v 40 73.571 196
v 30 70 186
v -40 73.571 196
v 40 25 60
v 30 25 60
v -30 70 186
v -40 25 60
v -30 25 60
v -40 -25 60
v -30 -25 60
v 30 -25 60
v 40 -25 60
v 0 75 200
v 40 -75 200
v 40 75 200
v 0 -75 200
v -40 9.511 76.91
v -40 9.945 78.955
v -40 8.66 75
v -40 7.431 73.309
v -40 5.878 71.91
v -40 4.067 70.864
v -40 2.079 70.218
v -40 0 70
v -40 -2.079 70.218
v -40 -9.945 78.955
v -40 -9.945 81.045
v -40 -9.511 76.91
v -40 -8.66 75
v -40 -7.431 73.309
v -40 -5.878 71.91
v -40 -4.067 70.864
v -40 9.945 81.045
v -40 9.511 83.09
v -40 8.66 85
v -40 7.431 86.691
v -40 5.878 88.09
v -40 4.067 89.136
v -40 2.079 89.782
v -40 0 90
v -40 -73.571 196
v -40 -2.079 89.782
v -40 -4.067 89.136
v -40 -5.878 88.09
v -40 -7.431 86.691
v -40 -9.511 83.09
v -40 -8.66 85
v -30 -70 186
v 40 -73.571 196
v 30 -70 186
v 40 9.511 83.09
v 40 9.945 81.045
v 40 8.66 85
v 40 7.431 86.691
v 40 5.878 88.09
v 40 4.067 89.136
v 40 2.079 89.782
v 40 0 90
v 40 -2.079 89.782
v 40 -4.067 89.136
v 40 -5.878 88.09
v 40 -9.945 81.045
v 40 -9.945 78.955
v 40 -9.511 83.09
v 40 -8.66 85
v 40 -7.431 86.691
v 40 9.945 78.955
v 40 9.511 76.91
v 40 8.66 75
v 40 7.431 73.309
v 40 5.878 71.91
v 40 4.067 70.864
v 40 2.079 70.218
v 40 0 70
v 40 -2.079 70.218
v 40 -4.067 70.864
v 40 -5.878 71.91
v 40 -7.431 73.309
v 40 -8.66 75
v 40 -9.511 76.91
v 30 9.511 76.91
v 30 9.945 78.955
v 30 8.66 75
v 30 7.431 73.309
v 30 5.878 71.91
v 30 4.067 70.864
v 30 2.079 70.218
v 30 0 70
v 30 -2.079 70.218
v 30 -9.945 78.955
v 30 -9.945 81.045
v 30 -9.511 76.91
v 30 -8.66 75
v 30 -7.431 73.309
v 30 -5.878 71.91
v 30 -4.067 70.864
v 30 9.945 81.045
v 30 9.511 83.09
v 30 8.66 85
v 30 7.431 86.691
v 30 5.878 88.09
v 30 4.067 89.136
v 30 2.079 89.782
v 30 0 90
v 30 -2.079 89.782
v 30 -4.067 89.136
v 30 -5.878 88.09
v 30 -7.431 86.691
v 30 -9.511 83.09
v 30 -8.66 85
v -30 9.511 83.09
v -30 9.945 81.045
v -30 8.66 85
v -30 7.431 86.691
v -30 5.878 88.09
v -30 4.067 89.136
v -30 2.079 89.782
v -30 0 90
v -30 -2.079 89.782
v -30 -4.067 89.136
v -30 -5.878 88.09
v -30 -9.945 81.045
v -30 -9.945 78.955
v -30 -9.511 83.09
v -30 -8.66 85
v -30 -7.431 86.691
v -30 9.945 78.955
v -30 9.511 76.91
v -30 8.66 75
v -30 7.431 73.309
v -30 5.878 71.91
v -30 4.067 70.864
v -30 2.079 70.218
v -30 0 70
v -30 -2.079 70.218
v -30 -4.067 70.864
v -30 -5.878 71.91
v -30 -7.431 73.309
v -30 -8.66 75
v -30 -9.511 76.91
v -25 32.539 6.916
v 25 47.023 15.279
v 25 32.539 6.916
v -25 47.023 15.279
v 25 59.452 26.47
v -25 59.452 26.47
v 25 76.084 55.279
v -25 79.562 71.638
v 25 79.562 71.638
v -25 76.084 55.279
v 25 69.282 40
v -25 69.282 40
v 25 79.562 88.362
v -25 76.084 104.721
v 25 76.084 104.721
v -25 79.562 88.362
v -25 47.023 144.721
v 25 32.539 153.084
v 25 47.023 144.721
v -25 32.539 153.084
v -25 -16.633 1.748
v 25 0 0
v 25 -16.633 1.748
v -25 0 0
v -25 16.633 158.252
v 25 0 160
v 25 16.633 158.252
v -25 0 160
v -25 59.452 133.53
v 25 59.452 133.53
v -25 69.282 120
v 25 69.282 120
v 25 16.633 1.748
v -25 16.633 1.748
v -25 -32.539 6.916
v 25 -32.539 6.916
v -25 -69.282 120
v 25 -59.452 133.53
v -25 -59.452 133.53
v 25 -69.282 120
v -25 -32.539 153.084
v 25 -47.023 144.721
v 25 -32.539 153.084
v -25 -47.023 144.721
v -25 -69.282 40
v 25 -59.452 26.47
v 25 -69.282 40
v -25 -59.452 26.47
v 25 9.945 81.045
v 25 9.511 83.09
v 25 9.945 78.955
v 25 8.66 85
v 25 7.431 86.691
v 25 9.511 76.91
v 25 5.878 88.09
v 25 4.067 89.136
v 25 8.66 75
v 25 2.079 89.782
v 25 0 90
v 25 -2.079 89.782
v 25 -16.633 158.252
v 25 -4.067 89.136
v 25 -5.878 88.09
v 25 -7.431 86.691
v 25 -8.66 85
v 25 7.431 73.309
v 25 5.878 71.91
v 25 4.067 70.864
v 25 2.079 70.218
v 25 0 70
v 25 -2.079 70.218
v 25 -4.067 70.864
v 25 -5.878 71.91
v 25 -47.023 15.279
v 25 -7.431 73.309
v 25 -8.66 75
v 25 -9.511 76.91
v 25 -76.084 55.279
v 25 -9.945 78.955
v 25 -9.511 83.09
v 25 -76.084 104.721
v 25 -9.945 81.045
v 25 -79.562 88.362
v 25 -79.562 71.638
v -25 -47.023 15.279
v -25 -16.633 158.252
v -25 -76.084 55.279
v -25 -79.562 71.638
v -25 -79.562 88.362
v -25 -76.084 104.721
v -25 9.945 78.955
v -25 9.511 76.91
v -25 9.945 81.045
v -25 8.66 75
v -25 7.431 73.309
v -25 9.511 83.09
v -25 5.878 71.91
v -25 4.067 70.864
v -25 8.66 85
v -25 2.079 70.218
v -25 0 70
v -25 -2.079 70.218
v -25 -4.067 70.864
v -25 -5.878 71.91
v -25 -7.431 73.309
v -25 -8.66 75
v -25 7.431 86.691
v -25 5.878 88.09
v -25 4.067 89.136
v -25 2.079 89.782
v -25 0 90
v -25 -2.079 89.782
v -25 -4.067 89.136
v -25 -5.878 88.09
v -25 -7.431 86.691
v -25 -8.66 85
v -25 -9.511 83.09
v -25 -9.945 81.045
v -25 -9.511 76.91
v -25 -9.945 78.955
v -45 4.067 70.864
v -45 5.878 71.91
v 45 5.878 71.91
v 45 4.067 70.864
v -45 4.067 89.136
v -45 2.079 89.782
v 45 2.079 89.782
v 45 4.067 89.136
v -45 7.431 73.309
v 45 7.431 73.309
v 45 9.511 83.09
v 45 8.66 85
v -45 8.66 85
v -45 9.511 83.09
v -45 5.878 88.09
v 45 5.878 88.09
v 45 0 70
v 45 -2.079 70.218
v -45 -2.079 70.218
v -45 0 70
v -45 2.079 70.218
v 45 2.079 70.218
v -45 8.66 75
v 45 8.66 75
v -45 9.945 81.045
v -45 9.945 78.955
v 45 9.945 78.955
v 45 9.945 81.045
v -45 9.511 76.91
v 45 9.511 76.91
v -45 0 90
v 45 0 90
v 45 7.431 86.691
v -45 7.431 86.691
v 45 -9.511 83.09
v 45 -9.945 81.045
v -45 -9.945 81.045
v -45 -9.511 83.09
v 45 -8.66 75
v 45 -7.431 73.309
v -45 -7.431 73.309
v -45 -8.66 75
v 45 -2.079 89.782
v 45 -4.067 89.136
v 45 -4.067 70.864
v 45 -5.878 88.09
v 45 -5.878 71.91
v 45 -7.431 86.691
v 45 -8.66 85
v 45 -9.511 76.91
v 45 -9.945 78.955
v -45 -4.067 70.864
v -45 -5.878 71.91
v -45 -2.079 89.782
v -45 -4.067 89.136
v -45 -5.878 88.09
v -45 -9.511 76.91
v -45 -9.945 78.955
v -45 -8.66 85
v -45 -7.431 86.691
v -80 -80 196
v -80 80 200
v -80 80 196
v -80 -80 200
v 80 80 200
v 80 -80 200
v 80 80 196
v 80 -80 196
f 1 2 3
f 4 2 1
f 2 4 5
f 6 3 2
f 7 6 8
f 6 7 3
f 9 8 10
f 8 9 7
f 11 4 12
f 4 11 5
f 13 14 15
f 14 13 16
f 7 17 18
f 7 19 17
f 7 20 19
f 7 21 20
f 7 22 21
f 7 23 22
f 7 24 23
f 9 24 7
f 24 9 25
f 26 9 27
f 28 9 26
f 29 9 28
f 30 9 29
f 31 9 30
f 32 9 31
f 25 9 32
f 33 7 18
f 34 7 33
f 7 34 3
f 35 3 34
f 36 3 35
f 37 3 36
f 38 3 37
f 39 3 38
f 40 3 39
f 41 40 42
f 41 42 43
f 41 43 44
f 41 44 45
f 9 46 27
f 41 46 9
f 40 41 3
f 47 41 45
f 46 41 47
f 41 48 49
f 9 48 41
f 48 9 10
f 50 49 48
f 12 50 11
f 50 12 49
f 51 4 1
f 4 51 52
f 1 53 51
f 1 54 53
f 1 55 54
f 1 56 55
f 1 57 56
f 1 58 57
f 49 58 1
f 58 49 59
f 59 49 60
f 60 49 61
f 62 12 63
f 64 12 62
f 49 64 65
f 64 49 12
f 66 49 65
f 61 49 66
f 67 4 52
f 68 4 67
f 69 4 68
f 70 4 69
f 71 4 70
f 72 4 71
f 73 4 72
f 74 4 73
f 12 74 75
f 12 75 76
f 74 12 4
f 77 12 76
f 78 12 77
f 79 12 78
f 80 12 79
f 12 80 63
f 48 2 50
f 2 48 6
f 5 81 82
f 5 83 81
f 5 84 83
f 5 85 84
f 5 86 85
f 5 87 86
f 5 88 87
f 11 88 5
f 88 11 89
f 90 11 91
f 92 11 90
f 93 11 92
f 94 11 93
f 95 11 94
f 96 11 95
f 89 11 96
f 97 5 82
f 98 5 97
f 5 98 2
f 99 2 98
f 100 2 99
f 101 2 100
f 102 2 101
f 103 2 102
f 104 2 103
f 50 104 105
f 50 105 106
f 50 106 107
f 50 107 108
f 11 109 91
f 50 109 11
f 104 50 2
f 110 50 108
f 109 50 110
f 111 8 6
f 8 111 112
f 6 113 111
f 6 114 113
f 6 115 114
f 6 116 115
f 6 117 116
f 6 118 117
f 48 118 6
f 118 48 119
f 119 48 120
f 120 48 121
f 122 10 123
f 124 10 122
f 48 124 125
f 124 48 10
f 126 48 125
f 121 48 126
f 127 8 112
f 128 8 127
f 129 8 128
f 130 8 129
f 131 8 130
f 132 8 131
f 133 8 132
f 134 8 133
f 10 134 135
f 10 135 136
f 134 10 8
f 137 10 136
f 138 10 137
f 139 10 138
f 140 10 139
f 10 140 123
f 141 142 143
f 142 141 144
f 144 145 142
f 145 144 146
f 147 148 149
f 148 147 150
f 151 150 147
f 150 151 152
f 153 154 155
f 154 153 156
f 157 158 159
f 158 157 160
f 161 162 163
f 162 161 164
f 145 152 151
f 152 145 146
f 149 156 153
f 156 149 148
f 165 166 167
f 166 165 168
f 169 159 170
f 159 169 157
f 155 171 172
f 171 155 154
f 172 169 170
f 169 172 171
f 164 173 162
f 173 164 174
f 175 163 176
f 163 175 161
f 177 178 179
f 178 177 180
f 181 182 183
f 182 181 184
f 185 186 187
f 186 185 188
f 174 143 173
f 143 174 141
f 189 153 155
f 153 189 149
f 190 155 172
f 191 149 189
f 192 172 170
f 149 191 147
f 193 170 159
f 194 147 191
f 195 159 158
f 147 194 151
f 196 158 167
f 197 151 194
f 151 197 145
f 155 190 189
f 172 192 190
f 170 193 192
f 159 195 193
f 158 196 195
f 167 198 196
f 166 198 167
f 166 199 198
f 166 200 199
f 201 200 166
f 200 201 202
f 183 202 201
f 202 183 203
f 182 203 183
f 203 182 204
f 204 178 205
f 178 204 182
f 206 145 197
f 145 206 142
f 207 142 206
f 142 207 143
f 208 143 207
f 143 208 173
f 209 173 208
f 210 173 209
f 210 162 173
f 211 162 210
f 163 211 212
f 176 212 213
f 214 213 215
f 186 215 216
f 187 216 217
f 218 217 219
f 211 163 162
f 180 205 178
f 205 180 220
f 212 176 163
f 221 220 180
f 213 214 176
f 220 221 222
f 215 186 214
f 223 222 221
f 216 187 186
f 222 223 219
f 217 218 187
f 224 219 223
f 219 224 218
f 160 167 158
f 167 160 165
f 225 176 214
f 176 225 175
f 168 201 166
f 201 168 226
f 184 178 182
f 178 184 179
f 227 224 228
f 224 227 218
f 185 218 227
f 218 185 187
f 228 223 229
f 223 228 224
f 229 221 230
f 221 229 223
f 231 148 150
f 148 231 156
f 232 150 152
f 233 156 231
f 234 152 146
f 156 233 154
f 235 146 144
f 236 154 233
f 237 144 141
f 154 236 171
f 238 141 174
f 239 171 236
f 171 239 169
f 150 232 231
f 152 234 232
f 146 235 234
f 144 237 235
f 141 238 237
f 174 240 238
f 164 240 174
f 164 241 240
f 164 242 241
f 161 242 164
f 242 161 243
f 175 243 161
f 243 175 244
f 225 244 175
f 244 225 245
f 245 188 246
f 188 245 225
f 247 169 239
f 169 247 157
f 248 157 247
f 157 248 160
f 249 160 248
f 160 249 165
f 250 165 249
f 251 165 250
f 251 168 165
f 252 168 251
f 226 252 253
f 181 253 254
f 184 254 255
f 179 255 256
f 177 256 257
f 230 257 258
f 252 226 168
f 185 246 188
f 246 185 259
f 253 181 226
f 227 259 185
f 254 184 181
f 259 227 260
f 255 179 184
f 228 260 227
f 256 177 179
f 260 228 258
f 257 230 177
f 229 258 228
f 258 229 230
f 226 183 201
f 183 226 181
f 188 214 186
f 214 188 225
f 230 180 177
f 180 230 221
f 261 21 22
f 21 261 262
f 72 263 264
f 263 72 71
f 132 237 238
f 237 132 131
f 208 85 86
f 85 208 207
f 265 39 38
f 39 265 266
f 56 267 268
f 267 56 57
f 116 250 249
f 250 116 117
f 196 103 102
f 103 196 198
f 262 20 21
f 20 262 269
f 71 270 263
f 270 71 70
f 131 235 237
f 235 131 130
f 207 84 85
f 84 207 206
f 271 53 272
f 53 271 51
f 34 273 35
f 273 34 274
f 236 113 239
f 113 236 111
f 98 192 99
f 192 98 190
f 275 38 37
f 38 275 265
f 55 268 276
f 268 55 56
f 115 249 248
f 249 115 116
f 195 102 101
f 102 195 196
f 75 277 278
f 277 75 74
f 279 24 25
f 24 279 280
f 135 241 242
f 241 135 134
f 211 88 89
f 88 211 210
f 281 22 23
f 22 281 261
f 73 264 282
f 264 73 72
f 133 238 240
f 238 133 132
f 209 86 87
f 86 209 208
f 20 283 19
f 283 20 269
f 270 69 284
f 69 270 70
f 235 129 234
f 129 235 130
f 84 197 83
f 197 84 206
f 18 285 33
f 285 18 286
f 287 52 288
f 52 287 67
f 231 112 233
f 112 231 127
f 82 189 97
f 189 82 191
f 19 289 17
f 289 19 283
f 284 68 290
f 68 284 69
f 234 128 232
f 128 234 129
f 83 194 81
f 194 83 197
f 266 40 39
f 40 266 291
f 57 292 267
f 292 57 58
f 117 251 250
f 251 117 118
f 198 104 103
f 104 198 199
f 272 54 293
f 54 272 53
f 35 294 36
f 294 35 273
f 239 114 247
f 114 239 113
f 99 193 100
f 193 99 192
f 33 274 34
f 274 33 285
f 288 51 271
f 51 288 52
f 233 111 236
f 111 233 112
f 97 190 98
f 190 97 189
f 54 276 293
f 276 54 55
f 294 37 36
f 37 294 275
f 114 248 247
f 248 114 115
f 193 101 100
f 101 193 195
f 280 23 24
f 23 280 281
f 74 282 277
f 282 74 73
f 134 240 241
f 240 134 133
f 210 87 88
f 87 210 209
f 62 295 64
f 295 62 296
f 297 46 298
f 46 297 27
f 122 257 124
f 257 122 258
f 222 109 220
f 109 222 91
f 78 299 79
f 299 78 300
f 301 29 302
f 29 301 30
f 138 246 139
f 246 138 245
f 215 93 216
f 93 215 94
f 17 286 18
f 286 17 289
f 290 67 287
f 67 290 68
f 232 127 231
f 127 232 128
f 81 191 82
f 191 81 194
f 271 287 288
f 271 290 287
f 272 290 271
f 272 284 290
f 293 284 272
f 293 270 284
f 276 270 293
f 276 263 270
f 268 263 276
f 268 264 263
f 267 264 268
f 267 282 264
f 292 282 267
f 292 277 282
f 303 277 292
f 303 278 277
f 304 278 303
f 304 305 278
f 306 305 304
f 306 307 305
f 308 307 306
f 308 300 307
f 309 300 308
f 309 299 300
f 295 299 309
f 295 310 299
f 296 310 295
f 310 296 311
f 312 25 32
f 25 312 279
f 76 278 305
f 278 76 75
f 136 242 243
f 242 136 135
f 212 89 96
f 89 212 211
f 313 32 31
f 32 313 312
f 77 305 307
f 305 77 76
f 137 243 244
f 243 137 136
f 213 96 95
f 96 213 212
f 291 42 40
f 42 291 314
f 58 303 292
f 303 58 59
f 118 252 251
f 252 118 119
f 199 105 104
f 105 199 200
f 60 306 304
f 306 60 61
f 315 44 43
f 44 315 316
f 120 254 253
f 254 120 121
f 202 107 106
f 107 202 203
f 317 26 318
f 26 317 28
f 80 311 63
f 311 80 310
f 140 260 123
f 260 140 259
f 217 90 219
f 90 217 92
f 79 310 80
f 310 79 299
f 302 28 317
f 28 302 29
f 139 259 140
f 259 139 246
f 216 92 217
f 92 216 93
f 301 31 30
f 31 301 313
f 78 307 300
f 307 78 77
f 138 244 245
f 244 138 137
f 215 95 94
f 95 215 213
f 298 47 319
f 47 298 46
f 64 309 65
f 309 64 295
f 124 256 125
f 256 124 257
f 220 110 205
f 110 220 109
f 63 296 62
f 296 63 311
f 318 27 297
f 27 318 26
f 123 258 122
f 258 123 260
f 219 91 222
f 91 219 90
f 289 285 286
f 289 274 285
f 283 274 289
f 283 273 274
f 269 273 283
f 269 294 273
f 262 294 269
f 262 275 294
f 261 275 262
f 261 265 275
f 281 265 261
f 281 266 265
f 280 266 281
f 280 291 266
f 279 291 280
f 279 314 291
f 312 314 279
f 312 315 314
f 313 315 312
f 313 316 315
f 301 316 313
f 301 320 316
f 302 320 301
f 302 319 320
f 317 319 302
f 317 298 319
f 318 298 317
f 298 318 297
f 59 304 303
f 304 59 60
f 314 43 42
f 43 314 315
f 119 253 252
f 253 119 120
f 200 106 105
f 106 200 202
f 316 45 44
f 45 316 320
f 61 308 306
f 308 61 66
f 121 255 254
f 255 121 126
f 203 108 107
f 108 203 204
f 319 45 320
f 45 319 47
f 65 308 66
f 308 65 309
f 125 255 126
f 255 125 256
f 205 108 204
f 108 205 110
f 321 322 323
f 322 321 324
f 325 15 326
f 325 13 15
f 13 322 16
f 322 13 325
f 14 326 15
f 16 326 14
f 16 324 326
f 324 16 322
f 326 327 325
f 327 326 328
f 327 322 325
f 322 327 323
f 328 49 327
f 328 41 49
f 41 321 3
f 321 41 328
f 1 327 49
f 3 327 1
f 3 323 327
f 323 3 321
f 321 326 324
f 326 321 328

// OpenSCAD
height=200;

module caster(h=height) {
    
    translate([-0.4*h,-0.4*h,49/50*h])
        cube([0.8*h,0.8*h,h/50]);

    translate([0,0,0.4*h])
        rotate([0,90,0])
            union(){
            cylinder(0.25*h,0.4*h,0.4*h,true);
            translate([0,0,-0.20*h])
                difference() {
                    linear_extrude(0.40*h)
                        polygon([[-0.6*h,0.375*h],[-0.6*h,-0.375*h],[h/10,h/-8],[h/10,h/8]]);
                    translate([-0.53*h,h/-2,h/20])
                        cube([h,h,0.3*h]);
                }
            cylinder(0.45*h,0.05*h,0.05*h,true);
            }
    
        
}
caster();
